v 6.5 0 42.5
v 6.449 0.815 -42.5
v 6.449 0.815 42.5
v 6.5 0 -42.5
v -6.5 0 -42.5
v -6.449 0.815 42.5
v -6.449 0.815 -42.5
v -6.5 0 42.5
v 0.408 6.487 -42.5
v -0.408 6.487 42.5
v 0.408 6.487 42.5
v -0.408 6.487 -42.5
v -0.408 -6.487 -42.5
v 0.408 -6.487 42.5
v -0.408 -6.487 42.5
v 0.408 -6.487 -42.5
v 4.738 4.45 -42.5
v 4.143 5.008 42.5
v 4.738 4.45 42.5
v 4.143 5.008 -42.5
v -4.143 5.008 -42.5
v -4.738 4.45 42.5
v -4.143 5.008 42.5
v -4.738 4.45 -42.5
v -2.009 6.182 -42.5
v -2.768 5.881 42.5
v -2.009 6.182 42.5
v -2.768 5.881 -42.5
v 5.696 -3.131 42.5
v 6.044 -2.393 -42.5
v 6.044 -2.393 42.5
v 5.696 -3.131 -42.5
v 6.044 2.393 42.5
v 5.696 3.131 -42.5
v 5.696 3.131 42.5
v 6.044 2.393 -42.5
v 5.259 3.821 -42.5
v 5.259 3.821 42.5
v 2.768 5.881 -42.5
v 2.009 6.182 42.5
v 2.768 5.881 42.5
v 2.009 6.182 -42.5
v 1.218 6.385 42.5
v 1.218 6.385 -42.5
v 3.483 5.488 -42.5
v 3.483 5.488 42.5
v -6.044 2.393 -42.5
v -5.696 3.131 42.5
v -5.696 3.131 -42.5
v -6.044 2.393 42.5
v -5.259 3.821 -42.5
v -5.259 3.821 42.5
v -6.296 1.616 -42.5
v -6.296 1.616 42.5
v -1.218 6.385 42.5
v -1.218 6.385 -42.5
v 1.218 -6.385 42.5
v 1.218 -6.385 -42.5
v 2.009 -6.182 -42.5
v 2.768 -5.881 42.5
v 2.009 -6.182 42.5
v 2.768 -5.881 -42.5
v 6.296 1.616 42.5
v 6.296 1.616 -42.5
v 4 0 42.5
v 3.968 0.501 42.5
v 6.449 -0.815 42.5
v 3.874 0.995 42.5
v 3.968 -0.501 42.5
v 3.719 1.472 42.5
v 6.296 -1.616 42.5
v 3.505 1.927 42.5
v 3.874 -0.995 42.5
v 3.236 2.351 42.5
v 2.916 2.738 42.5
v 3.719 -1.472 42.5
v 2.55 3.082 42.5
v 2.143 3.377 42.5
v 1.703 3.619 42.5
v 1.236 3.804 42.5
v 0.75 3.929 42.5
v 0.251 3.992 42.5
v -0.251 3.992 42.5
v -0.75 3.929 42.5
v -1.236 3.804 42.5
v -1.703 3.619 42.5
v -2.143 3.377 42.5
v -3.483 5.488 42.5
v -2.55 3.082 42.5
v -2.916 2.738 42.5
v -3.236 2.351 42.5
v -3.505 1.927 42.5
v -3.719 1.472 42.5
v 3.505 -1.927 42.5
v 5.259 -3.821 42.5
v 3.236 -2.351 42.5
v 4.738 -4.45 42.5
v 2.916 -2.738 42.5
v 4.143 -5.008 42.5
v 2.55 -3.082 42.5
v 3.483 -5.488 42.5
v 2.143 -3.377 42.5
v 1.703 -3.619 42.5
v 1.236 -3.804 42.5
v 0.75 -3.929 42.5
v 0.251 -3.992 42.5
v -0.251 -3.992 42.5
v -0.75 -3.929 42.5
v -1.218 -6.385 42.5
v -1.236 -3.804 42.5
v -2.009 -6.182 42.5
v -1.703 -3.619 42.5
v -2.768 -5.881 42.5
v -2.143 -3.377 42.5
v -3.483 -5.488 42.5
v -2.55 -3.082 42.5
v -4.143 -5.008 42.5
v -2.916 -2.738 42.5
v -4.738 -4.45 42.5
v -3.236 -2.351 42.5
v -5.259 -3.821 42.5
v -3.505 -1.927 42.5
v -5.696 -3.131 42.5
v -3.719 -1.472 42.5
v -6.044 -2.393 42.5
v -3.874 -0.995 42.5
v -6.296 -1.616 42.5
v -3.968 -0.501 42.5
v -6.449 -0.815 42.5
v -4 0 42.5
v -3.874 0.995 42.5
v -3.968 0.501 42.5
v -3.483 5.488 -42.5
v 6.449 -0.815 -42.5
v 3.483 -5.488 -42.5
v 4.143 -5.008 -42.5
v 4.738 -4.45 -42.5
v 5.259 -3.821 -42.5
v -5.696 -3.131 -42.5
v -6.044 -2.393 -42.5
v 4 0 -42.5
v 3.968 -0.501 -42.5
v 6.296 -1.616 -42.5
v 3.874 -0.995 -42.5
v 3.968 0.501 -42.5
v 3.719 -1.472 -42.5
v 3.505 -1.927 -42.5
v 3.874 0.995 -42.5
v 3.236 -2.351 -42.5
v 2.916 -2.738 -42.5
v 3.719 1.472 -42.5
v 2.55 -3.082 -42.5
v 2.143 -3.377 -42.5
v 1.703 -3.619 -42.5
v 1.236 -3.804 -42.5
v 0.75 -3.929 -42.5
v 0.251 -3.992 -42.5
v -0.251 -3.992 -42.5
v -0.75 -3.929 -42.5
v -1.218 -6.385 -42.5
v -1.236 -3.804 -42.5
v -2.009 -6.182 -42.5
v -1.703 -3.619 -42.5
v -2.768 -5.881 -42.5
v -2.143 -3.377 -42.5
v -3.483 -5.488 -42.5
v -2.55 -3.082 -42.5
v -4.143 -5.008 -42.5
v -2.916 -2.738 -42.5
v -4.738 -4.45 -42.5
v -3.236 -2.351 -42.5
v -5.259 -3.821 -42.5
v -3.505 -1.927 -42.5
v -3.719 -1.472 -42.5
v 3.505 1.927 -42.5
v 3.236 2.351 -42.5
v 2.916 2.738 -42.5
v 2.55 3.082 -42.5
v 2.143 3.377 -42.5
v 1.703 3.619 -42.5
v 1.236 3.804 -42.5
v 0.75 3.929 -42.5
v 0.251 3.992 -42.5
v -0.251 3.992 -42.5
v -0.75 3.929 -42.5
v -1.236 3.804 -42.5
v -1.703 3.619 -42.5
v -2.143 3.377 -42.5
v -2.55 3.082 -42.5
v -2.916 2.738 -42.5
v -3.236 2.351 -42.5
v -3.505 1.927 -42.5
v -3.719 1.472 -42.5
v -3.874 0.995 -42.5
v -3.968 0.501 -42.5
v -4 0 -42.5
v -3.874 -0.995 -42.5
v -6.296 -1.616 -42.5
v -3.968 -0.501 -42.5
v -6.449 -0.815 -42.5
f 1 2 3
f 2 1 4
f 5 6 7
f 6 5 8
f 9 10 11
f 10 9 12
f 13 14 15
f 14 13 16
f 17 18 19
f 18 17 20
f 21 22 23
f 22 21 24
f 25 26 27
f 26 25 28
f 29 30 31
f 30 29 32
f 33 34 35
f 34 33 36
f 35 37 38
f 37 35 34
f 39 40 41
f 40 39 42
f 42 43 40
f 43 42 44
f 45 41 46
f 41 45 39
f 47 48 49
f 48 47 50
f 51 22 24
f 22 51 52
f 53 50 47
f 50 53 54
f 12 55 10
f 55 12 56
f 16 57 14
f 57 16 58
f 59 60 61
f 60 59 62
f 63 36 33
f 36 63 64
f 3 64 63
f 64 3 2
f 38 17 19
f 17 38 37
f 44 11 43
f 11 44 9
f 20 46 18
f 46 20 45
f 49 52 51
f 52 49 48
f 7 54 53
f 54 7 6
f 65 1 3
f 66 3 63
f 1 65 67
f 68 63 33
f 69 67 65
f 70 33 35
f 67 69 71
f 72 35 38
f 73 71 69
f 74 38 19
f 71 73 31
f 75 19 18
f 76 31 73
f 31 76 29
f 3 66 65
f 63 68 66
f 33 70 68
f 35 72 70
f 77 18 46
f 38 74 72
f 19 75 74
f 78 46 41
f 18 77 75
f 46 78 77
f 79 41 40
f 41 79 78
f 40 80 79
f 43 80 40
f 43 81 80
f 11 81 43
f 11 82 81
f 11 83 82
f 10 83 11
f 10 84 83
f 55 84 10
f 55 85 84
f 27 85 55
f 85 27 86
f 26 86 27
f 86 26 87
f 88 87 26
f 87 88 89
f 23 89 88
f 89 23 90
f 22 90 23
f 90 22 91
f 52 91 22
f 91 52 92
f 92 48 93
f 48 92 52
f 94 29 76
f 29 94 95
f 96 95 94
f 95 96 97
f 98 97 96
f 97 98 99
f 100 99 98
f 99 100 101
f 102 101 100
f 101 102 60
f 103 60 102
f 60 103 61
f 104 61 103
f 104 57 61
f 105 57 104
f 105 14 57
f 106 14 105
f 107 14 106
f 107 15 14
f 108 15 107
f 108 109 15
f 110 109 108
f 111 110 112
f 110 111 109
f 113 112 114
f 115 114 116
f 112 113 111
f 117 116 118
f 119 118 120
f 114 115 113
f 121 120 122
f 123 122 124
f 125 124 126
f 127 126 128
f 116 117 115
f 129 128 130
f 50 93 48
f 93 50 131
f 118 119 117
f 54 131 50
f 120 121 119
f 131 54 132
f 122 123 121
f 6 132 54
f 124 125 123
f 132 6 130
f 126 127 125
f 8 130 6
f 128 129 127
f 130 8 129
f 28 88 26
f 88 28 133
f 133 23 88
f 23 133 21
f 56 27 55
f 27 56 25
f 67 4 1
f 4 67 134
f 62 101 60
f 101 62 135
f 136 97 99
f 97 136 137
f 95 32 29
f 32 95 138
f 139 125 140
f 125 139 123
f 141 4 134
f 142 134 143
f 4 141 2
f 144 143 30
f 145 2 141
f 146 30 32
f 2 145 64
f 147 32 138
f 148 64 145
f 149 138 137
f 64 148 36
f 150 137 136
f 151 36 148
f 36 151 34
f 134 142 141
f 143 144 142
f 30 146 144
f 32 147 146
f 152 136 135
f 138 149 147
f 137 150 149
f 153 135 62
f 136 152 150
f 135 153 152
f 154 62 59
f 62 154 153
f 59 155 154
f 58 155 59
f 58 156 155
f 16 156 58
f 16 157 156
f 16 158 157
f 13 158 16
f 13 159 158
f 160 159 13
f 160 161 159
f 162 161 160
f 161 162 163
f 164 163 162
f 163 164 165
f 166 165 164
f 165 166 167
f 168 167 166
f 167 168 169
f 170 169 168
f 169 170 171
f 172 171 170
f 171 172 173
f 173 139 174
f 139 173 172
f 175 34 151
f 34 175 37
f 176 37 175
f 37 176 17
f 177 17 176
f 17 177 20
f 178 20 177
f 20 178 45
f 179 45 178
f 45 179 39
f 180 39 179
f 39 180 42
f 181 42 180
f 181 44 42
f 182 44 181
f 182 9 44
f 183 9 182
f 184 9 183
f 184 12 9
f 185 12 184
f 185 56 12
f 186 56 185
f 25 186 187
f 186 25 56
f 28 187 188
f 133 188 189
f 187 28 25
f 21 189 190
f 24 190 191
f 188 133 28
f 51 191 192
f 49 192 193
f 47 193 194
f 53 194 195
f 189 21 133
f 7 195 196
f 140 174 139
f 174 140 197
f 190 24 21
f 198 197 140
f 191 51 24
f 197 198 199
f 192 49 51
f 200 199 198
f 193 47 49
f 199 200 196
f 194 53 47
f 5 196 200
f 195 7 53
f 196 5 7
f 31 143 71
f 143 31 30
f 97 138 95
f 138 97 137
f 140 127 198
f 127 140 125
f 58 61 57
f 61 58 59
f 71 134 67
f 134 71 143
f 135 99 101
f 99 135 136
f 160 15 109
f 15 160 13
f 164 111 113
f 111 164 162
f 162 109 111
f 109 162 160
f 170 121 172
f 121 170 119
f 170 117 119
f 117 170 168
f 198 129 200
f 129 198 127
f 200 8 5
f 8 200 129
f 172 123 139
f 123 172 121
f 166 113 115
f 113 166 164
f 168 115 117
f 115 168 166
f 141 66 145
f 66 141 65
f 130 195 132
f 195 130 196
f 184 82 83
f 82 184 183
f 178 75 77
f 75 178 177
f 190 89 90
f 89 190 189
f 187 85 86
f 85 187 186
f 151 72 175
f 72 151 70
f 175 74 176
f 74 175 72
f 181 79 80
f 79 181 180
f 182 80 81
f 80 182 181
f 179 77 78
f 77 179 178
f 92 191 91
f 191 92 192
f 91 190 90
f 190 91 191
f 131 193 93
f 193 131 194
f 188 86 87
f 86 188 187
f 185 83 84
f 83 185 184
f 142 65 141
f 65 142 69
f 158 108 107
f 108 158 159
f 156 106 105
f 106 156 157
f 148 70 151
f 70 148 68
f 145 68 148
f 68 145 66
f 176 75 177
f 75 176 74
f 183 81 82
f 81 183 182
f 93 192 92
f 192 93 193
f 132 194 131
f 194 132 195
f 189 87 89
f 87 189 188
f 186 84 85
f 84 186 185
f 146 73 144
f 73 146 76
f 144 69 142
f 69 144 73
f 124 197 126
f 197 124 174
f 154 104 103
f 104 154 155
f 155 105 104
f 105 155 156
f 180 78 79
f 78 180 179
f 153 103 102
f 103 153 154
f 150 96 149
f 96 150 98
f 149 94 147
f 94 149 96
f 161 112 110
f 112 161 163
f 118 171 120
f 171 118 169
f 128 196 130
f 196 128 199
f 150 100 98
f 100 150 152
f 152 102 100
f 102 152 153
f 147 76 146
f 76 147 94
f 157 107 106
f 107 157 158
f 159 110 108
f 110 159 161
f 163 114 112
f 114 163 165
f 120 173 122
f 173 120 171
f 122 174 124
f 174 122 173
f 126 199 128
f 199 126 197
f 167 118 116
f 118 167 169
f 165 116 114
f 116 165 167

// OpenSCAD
$fn = 50;


difference() {
	union() {
		translate(v = [0, 0, -42.5000000000]) {
			cylinder(h = 85, r = 6.5000000000);
		}
	}
	union() {
		translate(v = [0, 0, -100.0000000000]) {
			cylinder(h = 200, r = 4);
		}
	}
}
